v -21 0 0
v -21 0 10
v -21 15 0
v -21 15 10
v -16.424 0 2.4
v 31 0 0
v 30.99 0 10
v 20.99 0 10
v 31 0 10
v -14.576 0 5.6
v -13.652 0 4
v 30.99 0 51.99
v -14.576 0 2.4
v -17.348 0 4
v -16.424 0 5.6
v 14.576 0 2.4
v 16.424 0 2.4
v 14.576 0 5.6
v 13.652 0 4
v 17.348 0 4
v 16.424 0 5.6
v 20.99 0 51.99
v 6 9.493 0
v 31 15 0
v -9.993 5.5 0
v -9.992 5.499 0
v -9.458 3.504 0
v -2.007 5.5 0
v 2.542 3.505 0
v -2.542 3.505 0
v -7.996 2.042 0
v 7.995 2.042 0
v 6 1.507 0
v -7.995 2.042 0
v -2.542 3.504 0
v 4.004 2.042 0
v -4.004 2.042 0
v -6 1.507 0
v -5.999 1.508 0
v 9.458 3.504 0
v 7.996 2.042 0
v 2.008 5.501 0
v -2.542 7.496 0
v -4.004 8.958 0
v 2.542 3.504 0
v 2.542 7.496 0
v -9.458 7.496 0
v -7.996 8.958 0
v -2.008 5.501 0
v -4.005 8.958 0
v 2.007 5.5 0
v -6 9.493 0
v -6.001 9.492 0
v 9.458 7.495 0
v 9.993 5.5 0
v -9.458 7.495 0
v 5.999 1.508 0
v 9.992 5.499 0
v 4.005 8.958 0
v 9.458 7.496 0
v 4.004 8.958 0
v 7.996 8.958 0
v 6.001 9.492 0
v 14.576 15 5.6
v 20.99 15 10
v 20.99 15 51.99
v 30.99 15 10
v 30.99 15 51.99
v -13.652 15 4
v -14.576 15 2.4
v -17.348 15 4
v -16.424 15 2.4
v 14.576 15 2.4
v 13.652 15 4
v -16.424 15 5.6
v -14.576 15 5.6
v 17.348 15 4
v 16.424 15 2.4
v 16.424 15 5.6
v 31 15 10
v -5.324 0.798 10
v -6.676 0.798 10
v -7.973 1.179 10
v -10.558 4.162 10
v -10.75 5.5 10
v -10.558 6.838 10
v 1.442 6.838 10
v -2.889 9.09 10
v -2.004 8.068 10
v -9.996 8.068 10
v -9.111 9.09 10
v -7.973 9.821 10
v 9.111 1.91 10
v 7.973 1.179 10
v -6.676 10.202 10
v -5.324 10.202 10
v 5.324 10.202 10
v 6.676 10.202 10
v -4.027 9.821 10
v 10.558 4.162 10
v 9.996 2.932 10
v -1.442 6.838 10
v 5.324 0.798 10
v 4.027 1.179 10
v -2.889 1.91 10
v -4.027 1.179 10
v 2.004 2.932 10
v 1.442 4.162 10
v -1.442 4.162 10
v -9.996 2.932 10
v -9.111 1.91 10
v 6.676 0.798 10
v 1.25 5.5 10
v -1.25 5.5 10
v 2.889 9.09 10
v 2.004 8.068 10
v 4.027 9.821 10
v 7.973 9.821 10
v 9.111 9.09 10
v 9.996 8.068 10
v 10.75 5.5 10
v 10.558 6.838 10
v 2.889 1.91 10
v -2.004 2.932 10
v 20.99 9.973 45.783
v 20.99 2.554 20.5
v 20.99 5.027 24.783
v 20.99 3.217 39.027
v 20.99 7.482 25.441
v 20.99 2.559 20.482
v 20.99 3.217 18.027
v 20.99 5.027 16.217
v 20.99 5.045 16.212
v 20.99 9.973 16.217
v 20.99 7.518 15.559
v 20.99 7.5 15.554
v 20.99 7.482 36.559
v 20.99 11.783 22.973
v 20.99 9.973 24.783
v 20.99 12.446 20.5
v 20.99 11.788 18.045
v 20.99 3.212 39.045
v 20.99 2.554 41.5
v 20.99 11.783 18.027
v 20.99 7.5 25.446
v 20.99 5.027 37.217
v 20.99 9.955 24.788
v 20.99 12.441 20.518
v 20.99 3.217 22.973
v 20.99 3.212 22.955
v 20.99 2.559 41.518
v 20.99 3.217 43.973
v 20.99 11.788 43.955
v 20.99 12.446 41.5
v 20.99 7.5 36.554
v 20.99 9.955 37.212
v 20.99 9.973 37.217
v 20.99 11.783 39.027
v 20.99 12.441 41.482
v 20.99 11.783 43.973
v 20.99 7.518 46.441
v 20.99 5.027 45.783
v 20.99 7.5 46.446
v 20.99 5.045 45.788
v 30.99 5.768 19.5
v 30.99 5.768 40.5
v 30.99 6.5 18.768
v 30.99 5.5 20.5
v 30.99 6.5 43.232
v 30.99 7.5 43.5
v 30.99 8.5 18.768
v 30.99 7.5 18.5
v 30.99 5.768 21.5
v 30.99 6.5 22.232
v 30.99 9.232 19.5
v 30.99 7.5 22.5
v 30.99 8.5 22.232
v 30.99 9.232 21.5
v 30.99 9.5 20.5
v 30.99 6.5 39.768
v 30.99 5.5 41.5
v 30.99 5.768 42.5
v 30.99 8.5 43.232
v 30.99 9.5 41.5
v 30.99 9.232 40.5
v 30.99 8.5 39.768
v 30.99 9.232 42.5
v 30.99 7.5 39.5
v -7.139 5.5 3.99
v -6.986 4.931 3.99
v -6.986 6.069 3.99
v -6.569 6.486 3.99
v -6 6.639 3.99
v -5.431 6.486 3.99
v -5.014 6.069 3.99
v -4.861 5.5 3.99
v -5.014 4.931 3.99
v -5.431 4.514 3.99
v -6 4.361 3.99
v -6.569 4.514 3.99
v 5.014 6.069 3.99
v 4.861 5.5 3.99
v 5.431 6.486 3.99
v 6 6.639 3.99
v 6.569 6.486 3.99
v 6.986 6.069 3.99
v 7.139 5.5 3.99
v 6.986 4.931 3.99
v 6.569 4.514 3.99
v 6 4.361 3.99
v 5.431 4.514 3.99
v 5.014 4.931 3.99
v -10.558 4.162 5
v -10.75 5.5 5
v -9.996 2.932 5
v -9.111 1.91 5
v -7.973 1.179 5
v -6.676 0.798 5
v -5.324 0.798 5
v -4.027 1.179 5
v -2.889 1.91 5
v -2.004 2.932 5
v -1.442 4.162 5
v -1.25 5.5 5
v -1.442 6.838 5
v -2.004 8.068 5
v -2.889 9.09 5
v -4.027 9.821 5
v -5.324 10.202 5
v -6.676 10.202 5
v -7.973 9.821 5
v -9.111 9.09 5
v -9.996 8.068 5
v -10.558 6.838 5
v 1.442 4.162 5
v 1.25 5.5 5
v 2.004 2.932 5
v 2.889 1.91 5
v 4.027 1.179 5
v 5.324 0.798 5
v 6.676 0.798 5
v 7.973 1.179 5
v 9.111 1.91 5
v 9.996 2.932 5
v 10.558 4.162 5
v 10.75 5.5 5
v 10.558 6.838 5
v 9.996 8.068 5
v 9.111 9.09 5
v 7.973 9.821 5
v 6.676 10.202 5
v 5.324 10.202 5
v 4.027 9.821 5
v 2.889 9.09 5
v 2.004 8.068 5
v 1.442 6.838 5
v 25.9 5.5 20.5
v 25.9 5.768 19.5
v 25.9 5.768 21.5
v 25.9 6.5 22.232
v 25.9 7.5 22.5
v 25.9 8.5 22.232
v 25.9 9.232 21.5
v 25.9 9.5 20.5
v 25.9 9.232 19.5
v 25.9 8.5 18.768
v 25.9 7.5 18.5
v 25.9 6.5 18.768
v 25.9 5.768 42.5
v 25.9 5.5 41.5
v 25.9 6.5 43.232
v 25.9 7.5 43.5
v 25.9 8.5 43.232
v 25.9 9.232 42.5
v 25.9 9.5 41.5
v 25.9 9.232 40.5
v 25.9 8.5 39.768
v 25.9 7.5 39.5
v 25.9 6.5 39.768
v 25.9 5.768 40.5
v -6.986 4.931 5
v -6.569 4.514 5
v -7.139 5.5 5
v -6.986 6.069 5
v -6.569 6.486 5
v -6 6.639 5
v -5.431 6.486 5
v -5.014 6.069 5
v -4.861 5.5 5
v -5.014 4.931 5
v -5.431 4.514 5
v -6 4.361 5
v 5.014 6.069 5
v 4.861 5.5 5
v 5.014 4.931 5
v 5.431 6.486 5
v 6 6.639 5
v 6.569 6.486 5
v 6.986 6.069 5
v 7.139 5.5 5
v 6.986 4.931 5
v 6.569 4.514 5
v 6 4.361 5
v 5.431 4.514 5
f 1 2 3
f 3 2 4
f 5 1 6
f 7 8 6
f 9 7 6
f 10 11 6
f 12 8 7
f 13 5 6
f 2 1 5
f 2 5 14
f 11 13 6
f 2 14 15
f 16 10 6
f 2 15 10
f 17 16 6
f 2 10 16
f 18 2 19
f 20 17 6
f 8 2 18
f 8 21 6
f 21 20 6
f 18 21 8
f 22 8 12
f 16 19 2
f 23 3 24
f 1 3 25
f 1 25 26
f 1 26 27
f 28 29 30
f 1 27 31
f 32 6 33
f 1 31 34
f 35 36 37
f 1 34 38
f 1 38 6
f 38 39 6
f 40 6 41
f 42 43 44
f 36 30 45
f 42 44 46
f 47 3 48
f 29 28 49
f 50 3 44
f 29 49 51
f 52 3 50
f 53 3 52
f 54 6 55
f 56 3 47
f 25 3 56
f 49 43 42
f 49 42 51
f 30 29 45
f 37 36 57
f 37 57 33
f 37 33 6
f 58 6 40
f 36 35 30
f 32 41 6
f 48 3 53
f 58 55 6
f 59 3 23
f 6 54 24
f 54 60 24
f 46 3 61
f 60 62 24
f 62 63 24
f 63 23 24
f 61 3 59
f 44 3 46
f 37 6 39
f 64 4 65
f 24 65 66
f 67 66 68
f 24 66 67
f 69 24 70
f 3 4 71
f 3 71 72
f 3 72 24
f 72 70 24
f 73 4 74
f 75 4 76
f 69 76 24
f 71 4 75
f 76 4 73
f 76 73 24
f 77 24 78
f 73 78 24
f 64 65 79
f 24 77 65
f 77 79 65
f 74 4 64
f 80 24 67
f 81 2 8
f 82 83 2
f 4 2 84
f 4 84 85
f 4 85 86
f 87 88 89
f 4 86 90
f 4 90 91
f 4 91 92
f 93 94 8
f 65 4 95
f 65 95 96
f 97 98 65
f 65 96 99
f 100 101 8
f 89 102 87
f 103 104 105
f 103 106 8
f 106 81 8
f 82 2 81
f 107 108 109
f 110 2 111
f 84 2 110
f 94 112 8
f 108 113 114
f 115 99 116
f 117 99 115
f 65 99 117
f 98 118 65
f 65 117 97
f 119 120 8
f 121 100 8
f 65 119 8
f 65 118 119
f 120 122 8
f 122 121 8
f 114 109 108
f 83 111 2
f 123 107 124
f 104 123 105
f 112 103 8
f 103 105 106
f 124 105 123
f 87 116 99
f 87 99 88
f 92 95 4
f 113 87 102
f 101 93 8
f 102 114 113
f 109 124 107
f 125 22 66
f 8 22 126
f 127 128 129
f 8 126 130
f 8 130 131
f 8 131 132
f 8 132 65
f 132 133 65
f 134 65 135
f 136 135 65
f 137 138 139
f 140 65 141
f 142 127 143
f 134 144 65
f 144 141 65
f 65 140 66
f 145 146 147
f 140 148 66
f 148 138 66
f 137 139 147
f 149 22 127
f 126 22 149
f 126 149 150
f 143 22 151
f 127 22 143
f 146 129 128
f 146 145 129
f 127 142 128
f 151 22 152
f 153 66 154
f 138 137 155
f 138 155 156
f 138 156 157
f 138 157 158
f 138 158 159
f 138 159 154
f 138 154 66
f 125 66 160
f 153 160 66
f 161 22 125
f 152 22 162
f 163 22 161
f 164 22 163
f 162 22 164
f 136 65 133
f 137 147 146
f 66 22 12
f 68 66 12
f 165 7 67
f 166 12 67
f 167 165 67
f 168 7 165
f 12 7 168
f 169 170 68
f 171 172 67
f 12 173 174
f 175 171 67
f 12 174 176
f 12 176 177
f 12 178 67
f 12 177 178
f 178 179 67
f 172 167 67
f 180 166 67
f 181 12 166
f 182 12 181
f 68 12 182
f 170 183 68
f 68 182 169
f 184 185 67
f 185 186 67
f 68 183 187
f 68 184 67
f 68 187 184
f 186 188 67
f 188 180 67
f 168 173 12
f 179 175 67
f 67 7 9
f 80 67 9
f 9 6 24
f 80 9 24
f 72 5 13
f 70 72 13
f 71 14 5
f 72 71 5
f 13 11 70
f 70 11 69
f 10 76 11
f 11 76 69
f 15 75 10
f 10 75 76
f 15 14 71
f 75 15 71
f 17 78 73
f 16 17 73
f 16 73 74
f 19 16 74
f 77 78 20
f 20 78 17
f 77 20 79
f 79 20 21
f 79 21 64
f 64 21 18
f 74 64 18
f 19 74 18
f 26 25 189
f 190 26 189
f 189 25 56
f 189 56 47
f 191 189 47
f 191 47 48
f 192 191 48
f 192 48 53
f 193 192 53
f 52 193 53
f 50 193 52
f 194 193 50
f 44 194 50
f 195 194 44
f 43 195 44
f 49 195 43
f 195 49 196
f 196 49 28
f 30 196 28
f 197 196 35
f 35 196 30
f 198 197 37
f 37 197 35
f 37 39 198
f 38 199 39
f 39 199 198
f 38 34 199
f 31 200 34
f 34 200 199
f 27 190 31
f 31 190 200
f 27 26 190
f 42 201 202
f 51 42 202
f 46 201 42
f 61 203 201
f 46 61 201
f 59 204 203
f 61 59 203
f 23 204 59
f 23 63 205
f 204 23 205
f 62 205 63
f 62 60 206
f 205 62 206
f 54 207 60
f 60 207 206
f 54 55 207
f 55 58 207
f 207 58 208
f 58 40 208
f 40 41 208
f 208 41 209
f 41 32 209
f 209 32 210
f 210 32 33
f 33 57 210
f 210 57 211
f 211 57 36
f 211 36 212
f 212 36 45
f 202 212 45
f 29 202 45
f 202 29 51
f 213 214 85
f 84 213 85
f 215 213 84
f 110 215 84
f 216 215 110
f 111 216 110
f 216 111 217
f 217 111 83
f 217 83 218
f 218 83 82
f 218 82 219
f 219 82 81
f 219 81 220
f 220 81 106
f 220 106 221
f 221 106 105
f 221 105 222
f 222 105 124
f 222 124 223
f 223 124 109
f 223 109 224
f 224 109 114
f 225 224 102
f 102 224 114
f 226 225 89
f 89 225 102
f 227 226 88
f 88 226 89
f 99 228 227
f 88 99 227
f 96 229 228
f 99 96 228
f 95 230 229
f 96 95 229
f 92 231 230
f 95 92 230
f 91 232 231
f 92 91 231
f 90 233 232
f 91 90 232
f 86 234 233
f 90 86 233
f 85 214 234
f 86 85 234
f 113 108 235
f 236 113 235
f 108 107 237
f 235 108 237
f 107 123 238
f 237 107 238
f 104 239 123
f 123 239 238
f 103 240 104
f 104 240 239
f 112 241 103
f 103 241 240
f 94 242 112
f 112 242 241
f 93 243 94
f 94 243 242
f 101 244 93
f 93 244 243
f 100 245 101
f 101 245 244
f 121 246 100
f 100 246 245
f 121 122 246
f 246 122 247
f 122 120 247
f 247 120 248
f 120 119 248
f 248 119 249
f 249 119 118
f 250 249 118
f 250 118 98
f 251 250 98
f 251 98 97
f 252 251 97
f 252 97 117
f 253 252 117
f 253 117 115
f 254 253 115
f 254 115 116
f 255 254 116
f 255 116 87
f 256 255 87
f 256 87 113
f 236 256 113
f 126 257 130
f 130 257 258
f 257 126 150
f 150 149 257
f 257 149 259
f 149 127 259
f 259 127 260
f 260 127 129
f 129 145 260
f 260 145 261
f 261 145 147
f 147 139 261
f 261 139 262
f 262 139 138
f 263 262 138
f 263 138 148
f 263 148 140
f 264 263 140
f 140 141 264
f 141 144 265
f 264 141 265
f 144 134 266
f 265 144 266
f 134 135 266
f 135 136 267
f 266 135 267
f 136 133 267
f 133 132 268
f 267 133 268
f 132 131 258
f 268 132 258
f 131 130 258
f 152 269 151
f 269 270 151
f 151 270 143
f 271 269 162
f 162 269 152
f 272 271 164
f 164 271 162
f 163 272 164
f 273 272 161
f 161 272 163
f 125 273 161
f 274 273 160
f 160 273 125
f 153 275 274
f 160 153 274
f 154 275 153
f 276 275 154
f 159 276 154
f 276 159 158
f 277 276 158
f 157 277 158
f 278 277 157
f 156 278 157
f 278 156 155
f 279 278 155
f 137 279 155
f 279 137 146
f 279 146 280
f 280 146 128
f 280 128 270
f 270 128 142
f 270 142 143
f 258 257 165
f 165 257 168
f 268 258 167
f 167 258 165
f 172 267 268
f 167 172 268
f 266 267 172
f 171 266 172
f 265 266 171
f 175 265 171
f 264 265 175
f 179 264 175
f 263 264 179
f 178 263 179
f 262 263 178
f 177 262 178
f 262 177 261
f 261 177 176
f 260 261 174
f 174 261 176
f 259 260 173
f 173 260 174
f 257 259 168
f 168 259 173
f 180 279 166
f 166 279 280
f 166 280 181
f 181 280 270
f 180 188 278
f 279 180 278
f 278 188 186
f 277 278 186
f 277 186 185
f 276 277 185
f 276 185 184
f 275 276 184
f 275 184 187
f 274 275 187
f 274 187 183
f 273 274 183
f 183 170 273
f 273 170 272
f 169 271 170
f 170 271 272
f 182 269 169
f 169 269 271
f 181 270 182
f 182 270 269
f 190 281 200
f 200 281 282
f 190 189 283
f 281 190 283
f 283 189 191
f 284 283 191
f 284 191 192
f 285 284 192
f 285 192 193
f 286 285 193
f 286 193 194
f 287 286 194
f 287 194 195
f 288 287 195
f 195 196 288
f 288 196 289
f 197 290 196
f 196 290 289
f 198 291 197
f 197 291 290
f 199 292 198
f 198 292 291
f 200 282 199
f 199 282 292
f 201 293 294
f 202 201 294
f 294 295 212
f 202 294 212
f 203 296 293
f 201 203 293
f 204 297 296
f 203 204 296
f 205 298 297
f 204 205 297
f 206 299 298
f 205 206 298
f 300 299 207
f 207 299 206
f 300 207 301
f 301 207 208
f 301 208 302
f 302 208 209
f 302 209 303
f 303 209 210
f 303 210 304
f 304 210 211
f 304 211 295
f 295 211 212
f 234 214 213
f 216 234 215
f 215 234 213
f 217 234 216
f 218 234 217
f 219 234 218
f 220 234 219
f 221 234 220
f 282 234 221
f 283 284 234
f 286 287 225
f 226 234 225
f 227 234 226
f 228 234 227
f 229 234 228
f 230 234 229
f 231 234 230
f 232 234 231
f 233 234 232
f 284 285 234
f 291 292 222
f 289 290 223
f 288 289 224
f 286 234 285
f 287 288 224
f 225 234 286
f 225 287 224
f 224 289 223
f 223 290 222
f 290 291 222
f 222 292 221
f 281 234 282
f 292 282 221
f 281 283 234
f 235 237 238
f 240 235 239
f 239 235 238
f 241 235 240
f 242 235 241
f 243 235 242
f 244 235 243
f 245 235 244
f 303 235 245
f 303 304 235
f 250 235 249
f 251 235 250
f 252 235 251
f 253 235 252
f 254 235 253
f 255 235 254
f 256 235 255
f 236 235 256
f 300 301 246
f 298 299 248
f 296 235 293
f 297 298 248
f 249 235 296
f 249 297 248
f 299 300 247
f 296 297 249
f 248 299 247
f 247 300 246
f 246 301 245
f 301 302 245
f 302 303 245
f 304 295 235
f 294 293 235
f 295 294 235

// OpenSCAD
width=42;
height=10;
length=15;

fitting_rad=4.75;

screw_sep=31;

fil_facets = 12;


difference(){
	union(){
		translate([height/2,length/2,height/2])
		cube([width+height, length, height], center=true);

		//mount block
		translate([width/2+height/2-.01,length/2,width/2+height-.01])
		cube([height, length, width], center=true);
	}

	//mount holes
	translate([width/2,length/2,width/2+height])
	for(j=[0,1]){
		mirror([0,0,j])
		translate([0,0,width/4])
		rotate([0,90,0]){
			cylinder(r=2, h=height, $fn=12);
			translate([0,0,-.1])
			cylinder(r1=height/2, r2=2,h=height/2, $fn=12);
		}
	}

	for(i=[0,1]) mirror([i,0,0]){
		//motor mount screw holes
		#translate([screw_sep/2,0,4]) rotate([90,0,0]) cylinder(r=1.6/cos(180/6), h=50,center=true, $fn=6);

		translate([6,5.5,0]){
			//filament hole
			cylinder(r=1.1/cos(180/fil_facets),h=50,center=true, $fn=fil_facets);

			//conic guide
			translate([0,0,-.01])
			cylinder(r1=4, r2=1.1/cos(180/fil_facets), h=4, $fn=fil_facets);
	
			//bowden mount hole
			translate([0,0,5])
			cylinder(r=fitting_rad, h=height, $fn=22);
		}
	}
}
